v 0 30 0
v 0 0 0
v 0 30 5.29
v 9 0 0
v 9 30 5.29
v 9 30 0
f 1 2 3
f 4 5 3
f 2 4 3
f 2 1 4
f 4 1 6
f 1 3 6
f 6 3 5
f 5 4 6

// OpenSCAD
difference() {
	cube([9, 30, 10]);
	rotate([10,0,0]) cube([9, 40, 10]);
}
